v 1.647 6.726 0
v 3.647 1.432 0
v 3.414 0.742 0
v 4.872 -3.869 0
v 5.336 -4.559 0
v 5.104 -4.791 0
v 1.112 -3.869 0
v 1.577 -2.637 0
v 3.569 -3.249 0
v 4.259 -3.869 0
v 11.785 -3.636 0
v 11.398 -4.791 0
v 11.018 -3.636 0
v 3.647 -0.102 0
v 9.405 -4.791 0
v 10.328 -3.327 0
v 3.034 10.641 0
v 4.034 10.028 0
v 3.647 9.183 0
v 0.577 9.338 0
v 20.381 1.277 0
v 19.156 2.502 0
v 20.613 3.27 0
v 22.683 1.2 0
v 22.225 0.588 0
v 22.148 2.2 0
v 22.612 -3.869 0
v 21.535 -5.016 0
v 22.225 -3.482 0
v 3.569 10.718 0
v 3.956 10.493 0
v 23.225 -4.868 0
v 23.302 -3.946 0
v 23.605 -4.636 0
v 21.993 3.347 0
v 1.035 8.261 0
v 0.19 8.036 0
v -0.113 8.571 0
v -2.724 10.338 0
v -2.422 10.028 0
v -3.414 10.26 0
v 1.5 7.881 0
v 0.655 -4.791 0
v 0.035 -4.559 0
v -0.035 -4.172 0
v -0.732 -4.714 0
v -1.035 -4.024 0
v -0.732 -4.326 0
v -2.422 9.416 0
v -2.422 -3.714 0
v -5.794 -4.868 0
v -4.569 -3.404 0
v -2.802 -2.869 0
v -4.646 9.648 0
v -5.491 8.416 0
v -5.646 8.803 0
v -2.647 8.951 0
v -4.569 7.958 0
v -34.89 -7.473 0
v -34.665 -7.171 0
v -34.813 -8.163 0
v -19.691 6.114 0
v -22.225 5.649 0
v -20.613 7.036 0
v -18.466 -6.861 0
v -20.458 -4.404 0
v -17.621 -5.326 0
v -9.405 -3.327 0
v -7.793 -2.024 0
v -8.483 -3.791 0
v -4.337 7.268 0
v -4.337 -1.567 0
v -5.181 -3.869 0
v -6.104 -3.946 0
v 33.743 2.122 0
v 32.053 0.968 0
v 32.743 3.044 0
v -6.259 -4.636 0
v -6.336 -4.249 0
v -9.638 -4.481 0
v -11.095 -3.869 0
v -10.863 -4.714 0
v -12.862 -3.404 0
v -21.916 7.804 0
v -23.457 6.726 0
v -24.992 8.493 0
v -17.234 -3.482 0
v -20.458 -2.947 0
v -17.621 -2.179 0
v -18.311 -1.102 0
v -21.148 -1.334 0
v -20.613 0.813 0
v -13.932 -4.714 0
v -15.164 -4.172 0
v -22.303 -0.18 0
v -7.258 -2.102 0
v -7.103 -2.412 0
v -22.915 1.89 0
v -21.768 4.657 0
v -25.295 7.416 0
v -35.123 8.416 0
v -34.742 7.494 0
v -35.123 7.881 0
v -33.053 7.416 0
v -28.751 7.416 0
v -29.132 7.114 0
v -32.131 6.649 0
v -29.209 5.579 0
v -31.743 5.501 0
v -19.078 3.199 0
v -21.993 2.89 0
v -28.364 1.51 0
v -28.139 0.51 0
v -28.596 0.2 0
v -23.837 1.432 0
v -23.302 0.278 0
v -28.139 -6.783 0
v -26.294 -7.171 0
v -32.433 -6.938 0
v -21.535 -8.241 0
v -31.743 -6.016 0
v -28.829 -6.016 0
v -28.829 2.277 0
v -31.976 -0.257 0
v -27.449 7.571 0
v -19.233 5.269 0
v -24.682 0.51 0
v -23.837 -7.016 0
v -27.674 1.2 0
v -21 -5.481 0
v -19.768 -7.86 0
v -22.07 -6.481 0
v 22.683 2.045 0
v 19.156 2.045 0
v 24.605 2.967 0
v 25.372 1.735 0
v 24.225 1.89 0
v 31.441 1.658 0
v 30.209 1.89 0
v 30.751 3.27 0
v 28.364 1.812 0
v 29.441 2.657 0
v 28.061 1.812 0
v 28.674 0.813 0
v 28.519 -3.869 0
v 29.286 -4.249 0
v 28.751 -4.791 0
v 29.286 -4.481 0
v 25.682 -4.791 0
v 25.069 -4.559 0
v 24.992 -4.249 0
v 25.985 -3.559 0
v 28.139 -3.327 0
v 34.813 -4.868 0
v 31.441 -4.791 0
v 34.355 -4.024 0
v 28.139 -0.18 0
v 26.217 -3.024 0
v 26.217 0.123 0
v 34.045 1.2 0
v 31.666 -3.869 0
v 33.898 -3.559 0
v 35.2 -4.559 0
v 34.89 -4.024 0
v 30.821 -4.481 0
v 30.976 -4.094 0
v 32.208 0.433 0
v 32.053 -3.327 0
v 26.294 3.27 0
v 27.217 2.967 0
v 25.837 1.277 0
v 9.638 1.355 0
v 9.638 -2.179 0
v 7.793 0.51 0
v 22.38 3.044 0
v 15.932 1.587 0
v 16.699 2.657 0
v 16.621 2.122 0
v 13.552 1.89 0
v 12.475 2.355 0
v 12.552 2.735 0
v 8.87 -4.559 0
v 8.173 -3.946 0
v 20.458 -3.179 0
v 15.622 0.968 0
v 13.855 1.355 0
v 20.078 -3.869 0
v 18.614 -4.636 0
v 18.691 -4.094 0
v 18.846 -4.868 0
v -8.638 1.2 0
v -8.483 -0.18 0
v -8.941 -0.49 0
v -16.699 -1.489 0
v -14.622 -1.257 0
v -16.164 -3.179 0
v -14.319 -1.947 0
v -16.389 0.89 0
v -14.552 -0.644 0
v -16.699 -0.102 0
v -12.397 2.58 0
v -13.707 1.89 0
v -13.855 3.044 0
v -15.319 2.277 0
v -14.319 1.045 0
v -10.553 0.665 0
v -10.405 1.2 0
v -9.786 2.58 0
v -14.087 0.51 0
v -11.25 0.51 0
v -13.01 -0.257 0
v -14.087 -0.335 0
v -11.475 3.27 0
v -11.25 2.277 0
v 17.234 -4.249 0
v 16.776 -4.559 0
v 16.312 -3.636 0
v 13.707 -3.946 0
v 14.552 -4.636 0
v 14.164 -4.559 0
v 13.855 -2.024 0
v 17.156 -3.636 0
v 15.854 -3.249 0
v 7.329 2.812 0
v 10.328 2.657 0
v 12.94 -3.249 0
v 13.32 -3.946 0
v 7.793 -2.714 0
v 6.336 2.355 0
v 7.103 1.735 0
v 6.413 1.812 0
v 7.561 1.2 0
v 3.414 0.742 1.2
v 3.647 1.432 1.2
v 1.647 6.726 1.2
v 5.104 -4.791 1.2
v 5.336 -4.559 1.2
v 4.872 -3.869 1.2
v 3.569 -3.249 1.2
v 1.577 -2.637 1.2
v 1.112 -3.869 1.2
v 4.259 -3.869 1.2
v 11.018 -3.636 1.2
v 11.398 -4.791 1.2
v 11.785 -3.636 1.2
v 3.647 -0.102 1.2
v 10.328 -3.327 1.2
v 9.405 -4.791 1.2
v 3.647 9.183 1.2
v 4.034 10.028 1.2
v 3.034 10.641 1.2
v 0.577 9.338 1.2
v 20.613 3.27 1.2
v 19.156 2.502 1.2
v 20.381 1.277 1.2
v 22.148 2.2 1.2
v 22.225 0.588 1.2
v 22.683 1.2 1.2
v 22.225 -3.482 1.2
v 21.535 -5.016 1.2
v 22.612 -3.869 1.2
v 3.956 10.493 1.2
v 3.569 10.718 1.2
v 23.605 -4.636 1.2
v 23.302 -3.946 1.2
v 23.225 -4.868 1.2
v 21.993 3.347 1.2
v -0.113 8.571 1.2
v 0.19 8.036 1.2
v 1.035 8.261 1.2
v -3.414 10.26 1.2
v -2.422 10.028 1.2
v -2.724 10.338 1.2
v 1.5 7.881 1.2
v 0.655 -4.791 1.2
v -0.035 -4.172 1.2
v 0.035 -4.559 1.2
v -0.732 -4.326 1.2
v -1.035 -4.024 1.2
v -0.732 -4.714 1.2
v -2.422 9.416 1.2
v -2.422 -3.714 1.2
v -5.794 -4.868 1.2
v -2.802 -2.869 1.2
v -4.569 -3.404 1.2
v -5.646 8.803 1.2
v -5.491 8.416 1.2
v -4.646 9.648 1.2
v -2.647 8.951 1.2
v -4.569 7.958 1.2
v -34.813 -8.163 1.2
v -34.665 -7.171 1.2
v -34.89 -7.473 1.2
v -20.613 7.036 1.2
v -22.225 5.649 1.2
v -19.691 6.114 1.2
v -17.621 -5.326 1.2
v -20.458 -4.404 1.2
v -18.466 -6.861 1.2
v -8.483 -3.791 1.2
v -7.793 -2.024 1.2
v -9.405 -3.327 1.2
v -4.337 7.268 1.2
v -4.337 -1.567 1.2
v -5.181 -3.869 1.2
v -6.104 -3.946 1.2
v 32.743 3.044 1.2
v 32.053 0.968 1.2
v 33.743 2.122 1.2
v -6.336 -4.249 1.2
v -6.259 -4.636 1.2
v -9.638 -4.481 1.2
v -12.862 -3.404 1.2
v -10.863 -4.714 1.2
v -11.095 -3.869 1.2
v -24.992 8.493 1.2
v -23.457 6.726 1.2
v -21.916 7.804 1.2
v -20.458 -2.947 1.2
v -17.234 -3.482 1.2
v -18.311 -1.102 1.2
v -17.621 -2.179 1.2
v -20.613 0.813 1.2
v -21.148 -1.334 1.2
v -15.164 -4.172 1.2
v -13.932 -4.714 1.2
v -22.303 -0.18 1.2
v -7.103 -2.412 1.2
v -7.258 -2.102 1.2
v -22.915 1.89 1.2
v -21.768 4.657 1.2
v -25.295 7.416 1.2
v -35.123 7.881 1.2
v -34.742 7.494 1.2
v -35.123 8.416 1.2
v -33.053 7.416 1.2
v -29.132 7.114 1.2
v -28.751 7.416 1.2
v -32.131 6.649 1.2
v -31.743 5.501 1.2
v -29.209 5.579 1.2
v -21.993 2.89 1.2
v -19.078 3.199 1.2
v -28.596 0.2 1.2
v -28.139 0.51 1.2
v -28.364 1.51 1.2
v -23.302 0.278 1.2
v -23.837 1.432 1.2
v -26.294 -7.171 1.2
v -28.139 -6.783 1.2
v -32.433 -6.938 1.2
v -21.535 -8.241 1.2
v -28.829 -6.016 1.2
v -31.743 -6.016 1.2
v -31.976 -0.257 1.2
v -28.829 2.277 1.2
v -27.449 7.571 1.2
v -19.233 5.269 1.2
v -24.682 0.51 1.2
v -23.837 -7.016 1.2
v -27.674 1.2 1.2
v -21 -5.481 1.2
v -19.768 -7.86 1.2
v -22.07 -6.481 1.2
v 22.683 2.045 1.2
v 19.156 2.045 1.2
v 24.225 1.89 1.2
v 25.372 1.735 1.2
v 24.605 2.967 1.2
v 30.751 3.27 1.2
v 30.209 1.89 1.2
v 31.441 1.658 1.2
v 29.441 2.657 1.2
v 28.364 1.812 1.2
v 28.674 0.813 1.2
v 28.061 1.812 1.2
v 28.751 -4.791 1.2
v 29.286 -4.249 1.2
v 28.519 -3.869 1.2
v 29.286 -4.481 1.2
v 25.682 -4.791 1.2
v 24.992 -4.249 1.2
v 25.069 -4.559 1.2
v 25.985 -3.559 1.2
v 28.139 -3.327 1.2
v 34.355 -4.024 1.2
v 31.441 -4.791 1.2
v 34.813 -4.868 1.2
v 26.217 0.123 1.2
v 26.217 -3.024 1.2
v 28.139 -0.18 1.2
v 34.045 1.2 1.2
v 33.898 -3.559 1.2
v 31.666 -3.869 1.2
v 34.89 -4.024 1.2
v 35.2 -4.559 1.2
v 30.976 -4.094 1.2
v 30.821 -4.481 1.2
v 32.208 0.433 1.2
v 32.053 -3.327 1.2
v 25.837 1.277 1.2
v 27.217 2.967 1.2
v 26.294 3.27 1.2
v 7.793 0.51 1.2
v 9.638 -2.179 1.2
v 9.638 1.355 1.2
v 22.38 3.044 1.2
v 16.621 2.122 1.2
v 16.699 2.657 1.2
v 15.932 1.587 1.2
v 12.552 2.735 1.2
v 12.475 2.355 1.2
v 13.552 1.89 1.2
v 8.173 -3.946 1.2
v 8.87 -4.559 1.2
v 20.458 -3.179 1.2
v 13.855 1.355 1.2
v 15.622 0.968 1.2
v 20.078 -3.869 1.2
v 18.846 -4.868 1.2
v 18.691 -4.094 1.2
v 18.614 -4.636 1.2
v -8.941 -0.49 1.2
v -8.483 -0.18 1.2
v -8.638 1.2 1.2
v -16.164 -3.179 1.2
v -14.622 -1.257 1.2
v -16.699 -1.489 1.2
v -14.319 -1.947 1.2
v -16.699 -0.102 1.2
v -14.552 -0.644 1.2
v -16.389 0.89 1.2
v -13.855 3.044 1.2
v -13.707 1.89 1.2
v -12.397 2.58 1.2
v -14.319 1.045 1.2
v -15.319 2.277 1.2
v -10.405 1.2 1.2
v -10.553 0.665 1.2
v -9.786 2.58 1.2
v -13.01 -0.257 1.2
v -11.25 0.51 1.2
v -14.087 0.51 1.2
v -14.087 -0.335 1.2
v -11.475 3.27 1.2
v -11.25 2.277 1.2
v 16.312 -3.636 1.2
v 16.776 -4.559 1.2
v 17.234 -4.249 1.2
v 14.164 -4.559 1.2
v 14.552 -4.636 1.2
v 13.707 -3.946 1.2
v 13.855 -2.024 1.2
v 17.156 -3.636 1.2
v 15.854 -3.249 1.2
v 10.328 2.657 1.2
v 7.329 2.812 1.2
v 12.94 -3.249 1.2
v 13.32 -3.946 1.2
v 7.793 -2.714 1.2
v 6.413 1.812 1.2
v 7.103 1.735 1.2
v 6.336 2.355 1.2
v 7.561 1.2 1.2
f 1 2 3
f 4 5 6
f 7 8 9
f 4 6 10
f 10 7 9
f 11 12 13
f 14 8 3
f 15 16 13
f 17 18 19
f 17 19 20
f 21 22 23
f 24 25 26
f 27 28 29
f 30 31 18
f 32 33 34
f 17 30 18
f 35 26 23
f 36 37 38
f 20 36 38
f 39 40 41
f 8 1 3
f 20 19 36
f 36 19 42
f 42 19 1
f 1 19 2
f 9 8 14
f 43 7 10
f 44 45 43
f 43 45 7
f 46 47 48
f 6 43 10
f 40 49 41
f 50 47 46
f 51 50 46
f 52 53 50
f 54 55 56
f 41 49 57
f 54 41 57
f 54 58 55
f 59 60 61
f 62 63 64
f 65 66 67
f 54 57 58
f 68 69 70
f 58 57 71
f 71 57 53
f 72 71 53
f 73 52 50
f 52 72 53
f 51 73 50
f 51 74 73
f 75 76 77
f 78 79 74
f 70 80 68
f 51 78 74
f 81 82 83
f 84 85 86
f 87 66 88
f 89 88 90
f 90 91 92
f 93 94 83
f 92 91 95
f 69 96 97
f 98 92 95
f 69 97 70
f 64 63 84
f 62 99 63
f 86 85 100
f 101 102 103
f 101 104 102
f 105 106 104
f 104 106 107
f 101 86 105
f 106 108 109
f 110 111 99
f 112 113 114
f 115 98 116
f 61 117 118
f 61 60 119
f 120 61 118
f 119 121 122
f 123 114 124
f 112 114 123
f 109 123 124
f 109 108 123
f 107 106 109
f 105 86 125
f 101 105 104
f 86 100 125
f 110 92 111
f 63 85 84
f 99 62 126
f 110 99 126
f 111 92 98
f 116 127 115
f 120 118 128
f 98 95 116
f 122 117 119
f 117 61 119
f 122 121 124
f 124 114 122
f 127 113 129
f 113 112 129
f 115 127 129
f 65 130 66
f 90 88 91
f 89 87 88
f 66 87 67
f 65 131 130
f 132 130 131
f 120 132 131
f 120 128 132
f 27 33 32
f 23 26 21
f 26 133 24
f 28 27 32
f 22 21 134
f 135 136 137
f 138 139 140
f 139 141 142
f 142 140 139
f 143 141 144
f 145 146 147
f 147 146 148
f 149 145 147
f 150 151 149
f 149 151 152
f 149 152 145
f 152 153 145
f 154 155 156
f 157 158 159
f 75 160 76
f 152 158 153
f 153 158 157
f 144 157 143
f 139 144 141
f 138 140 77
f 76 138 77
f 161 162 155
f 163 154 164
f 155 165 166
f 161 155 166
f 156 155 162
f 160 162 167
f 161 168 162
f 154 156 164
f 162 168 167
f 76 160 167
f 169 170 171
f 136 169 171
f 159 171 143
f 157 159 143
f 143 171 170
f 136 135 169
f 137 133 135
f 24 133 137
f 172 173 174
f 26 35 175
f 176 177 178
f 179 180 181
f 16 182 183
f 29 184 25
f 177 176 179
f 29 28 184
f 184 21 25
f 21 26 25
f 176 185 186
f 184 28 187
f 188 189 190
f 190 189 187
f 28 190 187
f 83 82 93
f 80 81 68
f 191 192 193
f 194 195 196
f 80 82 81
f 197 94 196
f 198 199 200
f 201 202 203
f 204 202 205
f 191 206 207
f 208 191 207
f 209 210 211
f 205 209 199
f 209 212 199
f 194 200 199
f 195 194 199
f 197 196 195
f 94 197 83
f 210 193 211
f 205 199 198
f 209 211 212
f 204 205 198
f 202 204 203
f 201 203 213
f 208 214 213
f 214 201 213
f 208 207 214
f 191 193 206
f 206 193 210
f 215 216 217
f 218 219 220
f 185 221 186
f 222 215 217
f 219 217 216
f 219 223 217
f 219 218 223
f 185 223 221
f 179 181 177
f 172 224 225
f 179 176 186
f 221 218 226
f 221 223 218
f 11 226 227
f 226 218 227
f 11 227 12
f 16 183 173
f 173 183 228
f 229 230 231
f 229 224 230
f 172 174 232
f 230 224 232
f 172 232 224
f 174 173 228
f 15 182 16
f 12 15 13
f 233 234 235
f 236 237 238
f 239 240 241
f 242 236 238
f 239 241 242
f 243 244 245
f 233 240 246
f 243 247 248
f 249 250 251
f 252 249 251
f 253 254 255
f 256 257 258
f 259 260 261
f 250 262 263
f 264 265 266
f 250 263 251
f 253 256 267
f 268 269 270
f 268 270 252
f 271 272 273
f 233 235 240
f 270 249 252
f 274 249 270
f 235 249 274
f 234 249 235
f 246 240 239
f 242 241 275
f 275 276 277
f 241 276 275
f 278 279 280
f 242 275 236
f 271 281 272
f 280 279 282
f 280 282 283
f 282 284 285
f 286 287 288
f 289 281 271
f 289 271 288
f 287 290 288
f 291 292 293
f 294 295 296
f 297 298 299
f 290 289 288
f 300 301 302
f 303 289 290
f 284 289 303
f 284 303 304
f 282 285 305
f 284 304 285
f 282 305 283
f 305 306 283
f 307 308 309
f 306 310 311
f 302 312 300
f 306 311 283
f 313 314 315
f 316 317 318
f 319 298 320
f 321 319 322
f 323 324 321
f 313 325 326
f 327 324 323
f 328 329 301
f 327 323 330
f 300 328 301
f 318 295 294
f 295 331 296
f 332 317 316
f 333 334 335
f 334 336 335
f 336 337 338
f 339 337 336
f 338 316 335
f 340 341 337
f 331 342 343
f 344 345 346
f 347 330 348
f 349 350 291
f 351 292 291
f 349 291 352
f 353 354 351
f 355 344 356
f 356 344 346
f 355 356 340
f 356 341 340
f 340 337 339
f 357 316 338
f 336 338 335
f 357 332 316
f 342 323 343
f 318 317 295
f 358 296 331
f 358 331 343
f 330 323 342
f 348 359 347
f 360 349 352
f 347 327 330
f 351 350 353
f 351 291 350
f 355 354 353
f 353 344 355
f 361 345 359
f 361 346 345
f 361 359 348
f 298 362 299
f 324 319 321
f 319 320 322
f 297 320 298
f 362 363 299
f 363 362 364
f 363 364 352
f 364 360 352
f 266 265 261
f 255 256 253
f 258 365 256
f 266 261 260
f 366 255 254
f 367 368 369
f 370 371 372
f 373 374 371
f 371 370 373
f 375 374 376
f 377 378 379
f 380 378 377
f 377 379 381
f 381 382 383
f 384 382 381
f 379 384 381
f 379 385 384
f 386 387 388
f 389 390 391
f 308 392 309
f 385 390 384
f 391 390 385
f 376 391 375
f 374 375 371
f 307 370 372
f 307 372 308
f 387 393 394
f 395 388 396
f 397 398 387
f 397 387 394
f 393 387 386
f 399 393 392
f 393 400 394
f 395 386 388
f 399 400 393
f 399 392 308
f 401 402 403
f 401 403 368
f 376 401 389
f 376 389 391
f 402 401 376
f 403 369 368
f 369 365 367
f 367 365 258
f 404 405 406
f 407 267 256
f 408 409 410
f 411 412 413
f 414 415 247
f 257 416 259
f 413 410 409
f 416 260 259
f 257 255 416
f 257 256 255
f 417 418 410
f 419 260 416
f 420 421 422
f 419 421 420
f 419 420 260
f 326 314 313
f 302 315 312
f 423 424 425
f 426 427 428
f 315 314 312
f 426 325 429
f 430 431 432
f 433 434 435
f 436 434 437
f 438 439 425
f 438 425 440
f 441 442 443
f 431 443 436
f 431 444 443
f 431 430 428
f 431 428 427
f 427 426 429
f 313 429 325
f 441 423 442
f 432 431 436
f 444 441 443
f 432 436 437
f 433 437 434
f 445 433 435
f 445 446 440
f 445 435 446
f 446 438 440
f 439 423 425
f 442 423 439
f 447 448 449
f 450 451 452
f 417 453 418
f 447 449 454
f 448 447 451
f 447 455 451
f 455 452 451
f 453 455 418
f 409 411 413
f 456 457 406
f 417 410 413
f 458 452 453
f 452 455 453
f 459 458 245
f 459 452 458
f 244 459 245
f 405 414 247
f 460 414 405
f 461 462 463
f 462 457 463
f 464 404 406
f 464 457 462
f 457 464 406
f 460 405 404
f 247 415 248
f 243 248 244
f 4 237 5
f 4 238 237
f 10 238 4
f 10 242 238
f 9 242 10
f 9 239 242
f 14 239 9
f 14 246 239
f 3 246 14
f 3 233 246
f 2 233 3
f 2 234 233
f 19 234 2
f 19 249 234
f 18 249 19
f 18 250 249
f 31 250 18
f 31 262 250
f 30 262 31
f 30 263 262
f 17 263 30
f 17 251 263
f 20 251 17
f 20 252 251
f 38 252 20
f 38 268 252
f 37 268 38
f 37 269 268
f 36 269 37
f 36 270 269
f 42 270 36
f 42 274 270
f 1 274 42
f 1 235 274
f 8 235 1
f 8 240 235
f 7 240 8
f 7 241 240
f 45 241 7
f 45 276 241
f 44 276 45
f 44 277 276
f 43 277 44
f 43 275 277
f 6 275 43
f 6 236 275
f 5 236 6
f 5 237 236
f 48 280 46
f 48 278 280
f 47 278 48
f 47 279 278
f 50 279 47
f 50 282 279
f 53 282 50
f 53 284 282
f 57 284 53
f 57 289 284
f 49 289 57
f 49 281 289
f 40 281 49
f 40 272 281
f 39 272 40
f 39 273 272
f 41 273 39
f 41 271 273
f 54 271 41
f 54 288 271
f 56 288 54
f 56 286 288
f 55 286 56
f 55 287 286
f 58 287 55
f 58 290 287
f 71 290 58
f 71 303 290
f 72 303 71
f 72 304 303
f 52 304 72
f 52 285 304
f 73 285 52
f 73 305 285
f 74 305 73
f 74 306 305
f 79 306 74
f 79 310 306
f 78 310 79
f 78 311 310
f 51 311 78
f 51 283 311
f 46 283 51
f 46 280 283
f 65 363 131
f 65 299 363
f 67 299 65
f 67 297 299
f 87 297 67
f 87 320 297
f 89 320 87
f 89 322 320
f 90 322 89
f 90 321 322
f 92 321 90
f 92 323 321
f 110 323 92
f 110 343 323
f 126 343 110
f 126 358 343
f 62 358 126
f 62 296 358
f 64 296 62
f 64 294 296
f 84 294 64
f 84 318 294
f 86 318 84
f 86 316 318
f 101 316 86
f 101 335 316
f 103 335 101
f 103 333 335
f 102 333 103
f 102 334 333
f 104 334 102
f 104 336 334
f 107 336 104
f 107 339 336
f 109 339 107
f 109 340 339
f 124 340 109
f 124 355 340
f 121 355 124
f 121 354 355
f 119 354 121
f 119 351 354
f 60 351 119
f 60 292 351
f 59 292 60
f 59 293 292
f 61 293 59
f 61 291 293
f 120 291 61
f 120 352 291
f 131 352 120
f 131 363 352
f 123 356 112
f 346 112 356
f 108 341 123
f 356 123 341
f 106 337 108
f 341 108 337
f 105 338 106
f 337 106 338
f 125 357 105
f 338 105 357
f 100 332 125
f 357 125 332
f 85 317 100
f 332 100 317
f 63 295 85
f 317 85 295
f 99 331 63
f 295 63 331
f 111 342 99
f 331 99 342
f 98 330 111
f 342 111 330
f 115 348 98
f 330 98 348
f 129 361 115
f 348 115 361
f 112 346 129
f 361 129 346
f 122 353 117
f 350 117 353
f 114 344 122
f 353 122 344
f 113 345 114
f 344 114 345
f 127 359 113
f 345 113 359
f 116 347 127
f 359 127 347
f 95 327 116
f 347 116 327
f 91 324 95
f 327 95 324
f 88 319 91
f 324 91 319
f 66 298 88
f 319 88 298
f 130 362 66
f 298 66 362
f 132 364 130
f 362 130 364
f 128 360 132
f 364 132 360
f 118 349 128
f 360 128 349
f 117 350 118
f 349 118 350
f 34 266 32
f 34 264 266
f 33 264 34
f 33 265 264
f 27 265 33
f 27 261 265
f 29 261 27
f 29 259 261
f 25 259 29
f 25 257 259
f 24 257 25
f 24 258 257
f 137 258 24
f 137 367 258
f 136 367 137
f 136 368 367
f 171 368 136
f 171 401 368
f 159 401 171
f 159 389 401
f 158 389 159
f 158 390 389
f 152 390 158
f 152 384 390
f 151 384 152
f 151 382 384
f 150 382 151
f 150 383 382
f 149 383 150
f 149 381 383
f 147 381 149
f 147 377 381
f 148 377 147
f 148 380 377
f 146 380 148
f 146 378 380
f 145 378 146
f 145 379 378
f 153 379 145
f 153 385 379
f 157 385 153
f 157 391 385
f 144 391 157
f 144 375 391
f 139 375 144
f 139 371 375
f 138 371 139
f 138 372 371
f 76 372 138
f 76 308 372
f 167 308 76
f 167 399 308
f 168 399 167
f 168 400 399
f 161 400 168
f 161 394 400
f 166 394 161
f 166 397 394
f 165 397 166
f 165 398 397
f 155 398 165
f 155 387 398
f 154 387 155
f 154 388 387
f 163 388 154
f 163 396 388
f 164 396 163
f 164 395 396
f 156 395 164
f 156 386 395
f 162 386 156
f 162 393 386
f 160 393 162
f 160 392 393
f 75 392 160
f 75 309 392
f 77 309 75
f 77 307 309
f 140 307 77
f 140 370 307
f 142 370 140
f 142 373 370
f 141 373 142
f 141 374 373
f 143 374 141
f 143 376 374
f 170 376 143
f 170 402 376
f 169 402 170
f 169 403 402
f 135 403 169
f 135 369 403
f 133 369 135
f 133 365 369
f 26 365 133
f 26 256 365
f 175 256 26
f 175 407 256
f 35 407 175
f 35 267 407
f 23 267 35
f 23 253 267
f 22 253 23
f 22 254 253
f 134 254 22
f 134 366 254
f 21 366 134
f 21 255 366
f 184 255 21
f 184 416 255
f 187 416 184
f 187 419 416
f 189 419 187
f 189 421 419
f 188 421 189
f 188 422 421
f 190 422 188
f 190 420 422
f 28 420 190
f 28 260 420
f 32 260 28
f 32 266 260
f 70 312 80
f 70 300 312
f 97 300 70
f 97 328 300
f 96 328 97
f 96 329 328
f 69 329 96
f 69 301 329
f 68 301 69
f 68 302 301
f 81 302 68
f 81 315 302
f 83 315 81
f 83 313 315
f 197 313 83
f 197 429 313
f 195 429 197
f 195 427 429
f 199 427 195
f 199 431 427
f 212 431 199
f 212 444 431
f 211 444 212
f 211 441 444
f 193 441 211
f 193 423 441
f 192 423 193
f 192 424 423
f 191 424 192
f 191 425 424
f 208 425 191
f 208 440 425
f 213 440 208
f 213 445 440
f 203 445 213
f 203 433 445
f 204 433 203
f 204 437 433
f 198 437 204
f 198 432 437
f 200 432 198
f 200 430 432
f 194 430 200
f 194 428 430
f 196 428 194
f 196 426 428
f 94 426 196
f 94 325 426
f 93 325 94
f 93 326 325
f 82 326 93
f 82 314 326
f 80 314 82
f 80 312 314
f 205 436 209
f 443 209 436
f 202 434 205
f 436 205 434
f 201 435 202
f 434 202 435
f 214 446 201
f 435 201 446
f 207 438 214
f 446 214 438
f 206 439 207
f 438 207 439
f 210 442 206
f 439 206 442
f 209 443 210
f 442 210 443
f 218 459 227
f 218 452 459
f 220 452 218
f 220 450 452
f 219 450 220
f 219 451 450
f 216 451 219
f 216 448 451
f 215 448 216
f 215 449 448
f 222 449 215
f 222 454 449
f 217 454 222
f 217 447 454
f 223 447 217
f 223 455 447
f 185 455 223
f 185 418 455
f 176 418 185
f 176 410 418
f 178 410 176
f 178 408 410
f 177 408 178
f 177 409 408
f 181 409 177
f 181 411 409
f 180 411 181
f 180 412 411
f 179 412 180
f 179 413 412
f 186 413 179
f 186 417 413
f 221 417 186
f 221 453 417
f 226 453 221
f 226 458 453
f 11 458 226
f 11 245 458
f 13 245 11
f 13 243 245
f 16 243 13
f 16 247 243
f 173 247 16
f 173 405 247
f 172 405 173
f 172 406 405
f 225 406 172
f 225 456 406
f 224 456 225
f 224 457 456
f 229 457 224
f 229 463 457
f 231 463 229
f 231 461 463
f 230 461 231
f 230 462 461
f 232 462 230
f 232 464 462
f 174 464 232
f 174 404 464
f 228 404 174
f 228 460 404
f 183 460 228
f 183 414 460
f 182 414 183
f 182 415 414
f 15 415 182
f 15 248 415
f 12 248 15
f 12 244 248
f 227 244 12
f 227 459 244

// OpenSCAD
// file: bellum_text_traced.scad
// bellum_text_traced.scad
// "Bellum" lettering traced from the source logo image with
// OpenCV (4x cubic upscale, threshold, morphological cleanup,
// approxPolyDP 2px). Coordinates are centered, Y-up, and
// normalized to 100 units of total width.
// Regenerate with scratchpad/trace2_emit.py if retuning.

module bellum_traced_2d() {
    polygon(points=[[-49.89,10.25],[-49.89,9.49],[-49.35,8.94],[-46.95,8.83],[-45.64,7.74],[-45.09,6.11],[-45.42,-2.07],[-45.09,-10.25],[-46.07,-11.56],[-49.24,-11.89],[-49.56,-12.32],[-49.45,-13.30],[-30.59,-13.41],[-28.08,-12.87],[-26.23,-11.45],[-25.03,-9.27],[-24.48,-6.65],[-25.03,-4.80],[-26.01,-3.27],[-29.28,-0.55],[-27.10,2.84],[-27.32,5.78],[-27.97,6.98],[-29.28,8.29],[-31.13,9.38],[-35.50,10.36],[-40.62,-1.42],[-39.97,-0.98],[-35.06,-0.98],[-33.10,-1.31],[-31.68,-1.96],[-30.04,-3.60],[-29.06,-5.89],[-29.06,-7.96],[-29.83,-9.49],[-31.35,-10.91],[-33.86,-11.67],[-37.35,-11.89],[-39.97,-11.34],[-40.95,-10.25],[-41.38,8.40],[-40.84,8.83],[-38.99,9.05],[-35.93,8.83],[-33.32,7.85],[-31.57,6.32],[-30.92,4.91],[-31.24,2.40],[-32.55,0.98],[-33.86,0.33],[-39.31,0.00],[-40.29,0.44],[-40.95,1.53],[-41.49,6.22]], paths=[[0, 1, 2, 3, 4, 5, 6, 7, 8, 9, 10, 11, 12, 13, 14, 15, 16, 17, 18, 19, 20, 21, 22, 23, 24, 25], [26, 27, 28, 29, 30, 31, 32, 33, 34, 35, 36, 37, 38, 39], [40, 41, 42, 43, 44, 45, 46, 47, 48, 49, 50, 51, 52, 53]]);
    polygon(points=[[-21.76,1.53],[-23.28,-0.44],[-23.72,-1.85],[-23.72,-3.82],[-22.96,-6.22],[-21.54,-7.63],[-19.79,-8.40],[-15.43,-8.40],[-13.69,-8.07],[-12.05,-7.09],[-10.09,-5.13],[-10.31,-4.69],[-11.07,-4.58],[-13.36,-6.43],[-15.76,-7.20],[-18.27,-6.54],[-20.34,-4.47],[-20.77,-3.49],[-20.67,-2.62],[-20.01,-2.18],[-18.48,-2.07],[-12.70,-2.40],[-12.05,-1.96],[-12.27,0.00],[-13.90,1.96],[-16.30,2.94],[-19.68,2.62],[-20.34,-0.22],[-19.47,0.98],[-17.61,1.96],[-15.98,1.53],[-14.78,0.00],[-14.99,-0.76],[-15.98,-0.98],[-20.01,-0.98]], paths=[[0, 1, 2, 3, 4, 5, 6, 7, 8, 9, 10, 11, 12, 13, 14, 15, 16, 17, 18, 19, 20, 21, 22, 23, 24, 25, 26], [27, 28, 29, 30, 31, 32, 33, 34]]);
    polygon(points=[[-3.87,12.98],[-4.85,12.87],[-6.60,12.00],[-8.02,10.80],[-7.80,10.25],[-6.49,9.60],[-6.16,8.62],[-6.16,-3.93],[-6.49,-6.54],[-7.36,-7.20],[-8.67,-7.31],[-9.00,-7.74],[-8.89,-8.29],[-8.23,-8.62],[-1.04,-8.40],[-1.04,-7.85],[-1.47,-7.42],[-3.44,-6.98],[-3.98,-5.78],[-3.76,11.01],[-3.44,11.67],[-3.44,12.54]], paths=[[0, 1, 2, 3, 4, 5, 6, 7, 8, 9, 10, 11, 12, 13, 14, 15, 16, 17, 18, 19, 20, 21]]);
    polygon(points=[[5.07,13.52],[4.31,13.41],[0.82,11.56],[-0.16,10.47],[0.27,9.71],[1.47,10.03],[2.13,9.49],[2.34,7.85],[2.24,-5.45],[1.58,-7.20],[-0.05,-7.63],[0.05,-8.18],[0.93,-8.51],[7.25,-8.51],[7.58,-8.18],[6.92,-7.20],[6.05,-7.20],[5.07,-6.32],[5.18,-1.85],[4.85,-0.65],[5.18,0.33],[5.18,11.34],[5.73,12.54],[5.62,13.20]], paths=[[0, 1, 2, 3, 4, 5, 6, 7, 8, 9, 10, 11, 12, 13, 14, 15, 16, 17, 18, 19, 20, 21, 22, 23]]);
    polygon(points=[[9.00,1.64],[9.11,0.87],[10.09,0.76],[10.74,0.00],[11.07,-0.98],[11.07,-5.56],[11.61,-7.31],[12.60,-8.18],[13.36,-8.51],[16.19,-8.51],[18.92,-7.31],[19.47,-7.31],[20.12,-8.18],[20.67,-8.29],[23.83,-8.18],[24.48,-7.74],[24.37,-6.87],[23.17,-6.87],[22.52,-6.32],[22.19,-0.33],[22.63,0.55],[23.61,1.31],[23.72,2.07],[17.83,2.18],[17.72,1.64],[19.25,0.98],[19.68,0.22],[19.68,-4.58],[18.38,-6.32],[16.74,-6.87],[15.65,-6.87],[14.67,-6.43],[13.69,-4.80],[13.69,0.22],[14.67,2.07],[10.41,2.29]], paths=[[0, 1, 2, 3, 4, 5, 6, 7, 8, 9, 10, 11, 12, 13, 14, 15, 16, 17, 18, 19, 20, 21, 22, 23, 24, 25, 26, 27, 28, 29, 30, 31, 32, 33, 34, 35]]);
    polygon(points=[[27.21,1.85],[27.21,1.20],[28.95,0.11],[29.06,-6.22],[28.52,-7.20],[26.55,-7.52],[26.44,-8.29],[26.77,-8.62],[30.59,-8.83],[32.99,-8.62],[33.53,-8.29],[33.10,-7.31],[32.12,-7.20],[31.57,-6.65],[31.57,-0.87],[32.22,0.00],[34.41,0.98],[36.04,0.76],[36.70,0.11],[37.24,-1.53],[37.24,-6.00],[36.91,-6.76],[35.50,-7.74],[35.61,-8.18],[36.48,-8.51],[40.84,-8.51],[41.60,-8.07],[41.60,-7.74],[40.51,-7.20],[39.97,-6.43],[39.97,-1.96],[40.73,-0.55],[42.91,0.98],[44.66,0.65],[45.53,-0.33],[45.75,-1.09],[45.53,-6.43],[44.98,-7.20],[44.00,-7.52],[43.78,-8.07],[44.66,-8.51],[49.45,-8.62],[50.00,-8.18],[49.56,-7.42],[48.80,-7.42],[48.15,-6.76],[48.36,0.00],[47.93,1.31],[46.51,2.62],[43.68,2.94],[41.82,2.07],[40.29,0.87],[39.86,0.87],[38.66,2.51],[37.35,2.94],[34.95,2.51],[32.22,1.20],[31.46,1.42],[31.79,2.62],[31.24,3.05],[29.28,2.94]], paths=[[0, 1, 2, 3, 4, 5, 6, 7, 8, 9, 10, 11, 12, 13, 14, 15, 16, 17, 18, 19, 20, 21, 22, 23, 24, 25, 26, 27, 28, 29, 30, 31, 32, 33, 34, 35, 36, 37, 38, 39, 40, 41, 42, 43, 44, 45, 46, 47, 48, 49, 50, 51, 52, 53, 54, 55, 56, 57, 58, 59, 60]]);
}

bellum_traced_2d();
// file: bellum_badge_004.scad
// bellum_badge_004.scad
// v004: corrected again after a closer look at the photo. The design is a
//   WHITE circle with a 5x5 checkerboard rotated 45 degrees on top: black
//   corner tiles, black center tile, thin white grout, and the diamond's
//   four corners slightly clipped by the circle rim. (v003's full-circle
//   checkerboard misread glare on the button photo as extra tiles.)
//
// Printable parts (print in the named color, glue together):
//   white_body()         white - 3 mm disc + 2 mm top layer with square
//                        pockets; the top layer IS the white circle, white
//                        tiles, and grout, all one solid piece
//   black_tiles()        black - 13 drop-in tiles (4 rim-clipped), flush
//                        with the white top when seated
//   text_plate_black()   black - outline plate behind the letters
//   text_letters_white() white - "Bellum" letters (6 pieces), glue on plate
//
// Everything scales from badge_d; thicknesses and clearance are absolute.
// v002/v003 history: lettering traced from the photo (bellum_text_traced).

$fa = 2;
$fs = 0.4;

// ---- scale ----
badge_d = 80;       // badge diameter: THE scale knob
n       = 5;        // checker tiles per row (odd -> black corners + center)

// ---- thicknesses (absolute mm, independent of badge_d) ----
t_base = 3;         // white disc under the pockets
t_top  = 2;         // pocketed top layer; tiles sit flush (total = 5)
t_text = 1.2;       // each text layer (plate and letters)
clr    = 0.15;      // per-side XY clearance for the drop-in tiles

// ---- proportions (fractions of badge_d, measured from the photo) ----
diag_frac = 1.09;                       // diamond diagonal vs diameter:
                                        // the four corners clip the rim
grout_w   = max(0.008 * badge_d, 0.8);  // white gap between tiles
text_w    = 0.88 * badge_d;             // width of "Bellum"
text_dy   = 0.015 * badge_d;            // text sits a touch above center
outline_w = max(0.015 * badge_d, 1.2);  // black outline around the letters

use <bellum_text_traced.scad>  // lettering traced from the logo photo

// ---- derived ----
R     = badge_d / 2;
sq_f  = diag_frac * badge_d / sqrt(2);  // checker field side
tile  = (sq_f - (n - 1) * grout_w) / n; // tile size
pitch = tile + grout_w;

eps = 0.01;

// ---------------- 2D shapes ----------------

// black tile positions: (i+j) even -> corners and center are black
module black_squares_2d(shrink = 0) {
    rotate(45)
        for (i = [0 : n - 1], j = [0 : n - 1])
            if ((i + j) % 2 == 0)
                translate([(i - (n - 1) / 2) * pitch,
                           (j - (n - 1) / 2) * pitch])
                    square(tile - 2 * shrink, center = true);
}

// traced lettering is normalized to 100 units wide, centered
module text_2d() {
    translate([0, text_dy]) scale(text_w / 100) bellum_traced_2d();
}

// ---------------- printable parts (each flat on Z=0) ----------------

// disc + pocketed top layer, one white piece
module white_body() {
    linear_extrude(t_base) circle(R);
    translate([0, 0, t_base])
        linear_extrude(t_top) difference() {
            circle(R);
            black_squares_2d();  // pockets; rim clips the 4 corner ones
        }
}

// drop-in tiles, rim-clipped ones trimmed slightly inside the disc edge
module black_tiles() {
    intersection() {
        linear_extrude(t_top) black_squares_2d(clr);
        cylinder(h = t_top + eps, r = R - 0.3);
    }
}

module text_plate_black() {
    linear_extrude(t_text) offset(r = outline_w) text_2d();
}

module text_letters_white() {
    linear_extrude(t_text) text_2d();
}

// ---------------- assembled preview ----------------

module assembly() {
    color("white") white_body();
    color([0.15, 0.15, 0.15]) translate([0, 0, t_base]) black_tiles();
    color([0.15, 0.15, 0.15]) translate([0, 0, t_base + t_top])
        text_plate_black();
    color("white") translate([0, 0, t_base + t_top + t_text])
        text_letters_white();
}

assembly();
// main file
// bellum_badge_004_text_white.scad - print in WHITE
// "Bellum" letters (6 pieces). Glue onto the black outline plate.
use <bellum_badge_004.scad>
text_letters_white();
